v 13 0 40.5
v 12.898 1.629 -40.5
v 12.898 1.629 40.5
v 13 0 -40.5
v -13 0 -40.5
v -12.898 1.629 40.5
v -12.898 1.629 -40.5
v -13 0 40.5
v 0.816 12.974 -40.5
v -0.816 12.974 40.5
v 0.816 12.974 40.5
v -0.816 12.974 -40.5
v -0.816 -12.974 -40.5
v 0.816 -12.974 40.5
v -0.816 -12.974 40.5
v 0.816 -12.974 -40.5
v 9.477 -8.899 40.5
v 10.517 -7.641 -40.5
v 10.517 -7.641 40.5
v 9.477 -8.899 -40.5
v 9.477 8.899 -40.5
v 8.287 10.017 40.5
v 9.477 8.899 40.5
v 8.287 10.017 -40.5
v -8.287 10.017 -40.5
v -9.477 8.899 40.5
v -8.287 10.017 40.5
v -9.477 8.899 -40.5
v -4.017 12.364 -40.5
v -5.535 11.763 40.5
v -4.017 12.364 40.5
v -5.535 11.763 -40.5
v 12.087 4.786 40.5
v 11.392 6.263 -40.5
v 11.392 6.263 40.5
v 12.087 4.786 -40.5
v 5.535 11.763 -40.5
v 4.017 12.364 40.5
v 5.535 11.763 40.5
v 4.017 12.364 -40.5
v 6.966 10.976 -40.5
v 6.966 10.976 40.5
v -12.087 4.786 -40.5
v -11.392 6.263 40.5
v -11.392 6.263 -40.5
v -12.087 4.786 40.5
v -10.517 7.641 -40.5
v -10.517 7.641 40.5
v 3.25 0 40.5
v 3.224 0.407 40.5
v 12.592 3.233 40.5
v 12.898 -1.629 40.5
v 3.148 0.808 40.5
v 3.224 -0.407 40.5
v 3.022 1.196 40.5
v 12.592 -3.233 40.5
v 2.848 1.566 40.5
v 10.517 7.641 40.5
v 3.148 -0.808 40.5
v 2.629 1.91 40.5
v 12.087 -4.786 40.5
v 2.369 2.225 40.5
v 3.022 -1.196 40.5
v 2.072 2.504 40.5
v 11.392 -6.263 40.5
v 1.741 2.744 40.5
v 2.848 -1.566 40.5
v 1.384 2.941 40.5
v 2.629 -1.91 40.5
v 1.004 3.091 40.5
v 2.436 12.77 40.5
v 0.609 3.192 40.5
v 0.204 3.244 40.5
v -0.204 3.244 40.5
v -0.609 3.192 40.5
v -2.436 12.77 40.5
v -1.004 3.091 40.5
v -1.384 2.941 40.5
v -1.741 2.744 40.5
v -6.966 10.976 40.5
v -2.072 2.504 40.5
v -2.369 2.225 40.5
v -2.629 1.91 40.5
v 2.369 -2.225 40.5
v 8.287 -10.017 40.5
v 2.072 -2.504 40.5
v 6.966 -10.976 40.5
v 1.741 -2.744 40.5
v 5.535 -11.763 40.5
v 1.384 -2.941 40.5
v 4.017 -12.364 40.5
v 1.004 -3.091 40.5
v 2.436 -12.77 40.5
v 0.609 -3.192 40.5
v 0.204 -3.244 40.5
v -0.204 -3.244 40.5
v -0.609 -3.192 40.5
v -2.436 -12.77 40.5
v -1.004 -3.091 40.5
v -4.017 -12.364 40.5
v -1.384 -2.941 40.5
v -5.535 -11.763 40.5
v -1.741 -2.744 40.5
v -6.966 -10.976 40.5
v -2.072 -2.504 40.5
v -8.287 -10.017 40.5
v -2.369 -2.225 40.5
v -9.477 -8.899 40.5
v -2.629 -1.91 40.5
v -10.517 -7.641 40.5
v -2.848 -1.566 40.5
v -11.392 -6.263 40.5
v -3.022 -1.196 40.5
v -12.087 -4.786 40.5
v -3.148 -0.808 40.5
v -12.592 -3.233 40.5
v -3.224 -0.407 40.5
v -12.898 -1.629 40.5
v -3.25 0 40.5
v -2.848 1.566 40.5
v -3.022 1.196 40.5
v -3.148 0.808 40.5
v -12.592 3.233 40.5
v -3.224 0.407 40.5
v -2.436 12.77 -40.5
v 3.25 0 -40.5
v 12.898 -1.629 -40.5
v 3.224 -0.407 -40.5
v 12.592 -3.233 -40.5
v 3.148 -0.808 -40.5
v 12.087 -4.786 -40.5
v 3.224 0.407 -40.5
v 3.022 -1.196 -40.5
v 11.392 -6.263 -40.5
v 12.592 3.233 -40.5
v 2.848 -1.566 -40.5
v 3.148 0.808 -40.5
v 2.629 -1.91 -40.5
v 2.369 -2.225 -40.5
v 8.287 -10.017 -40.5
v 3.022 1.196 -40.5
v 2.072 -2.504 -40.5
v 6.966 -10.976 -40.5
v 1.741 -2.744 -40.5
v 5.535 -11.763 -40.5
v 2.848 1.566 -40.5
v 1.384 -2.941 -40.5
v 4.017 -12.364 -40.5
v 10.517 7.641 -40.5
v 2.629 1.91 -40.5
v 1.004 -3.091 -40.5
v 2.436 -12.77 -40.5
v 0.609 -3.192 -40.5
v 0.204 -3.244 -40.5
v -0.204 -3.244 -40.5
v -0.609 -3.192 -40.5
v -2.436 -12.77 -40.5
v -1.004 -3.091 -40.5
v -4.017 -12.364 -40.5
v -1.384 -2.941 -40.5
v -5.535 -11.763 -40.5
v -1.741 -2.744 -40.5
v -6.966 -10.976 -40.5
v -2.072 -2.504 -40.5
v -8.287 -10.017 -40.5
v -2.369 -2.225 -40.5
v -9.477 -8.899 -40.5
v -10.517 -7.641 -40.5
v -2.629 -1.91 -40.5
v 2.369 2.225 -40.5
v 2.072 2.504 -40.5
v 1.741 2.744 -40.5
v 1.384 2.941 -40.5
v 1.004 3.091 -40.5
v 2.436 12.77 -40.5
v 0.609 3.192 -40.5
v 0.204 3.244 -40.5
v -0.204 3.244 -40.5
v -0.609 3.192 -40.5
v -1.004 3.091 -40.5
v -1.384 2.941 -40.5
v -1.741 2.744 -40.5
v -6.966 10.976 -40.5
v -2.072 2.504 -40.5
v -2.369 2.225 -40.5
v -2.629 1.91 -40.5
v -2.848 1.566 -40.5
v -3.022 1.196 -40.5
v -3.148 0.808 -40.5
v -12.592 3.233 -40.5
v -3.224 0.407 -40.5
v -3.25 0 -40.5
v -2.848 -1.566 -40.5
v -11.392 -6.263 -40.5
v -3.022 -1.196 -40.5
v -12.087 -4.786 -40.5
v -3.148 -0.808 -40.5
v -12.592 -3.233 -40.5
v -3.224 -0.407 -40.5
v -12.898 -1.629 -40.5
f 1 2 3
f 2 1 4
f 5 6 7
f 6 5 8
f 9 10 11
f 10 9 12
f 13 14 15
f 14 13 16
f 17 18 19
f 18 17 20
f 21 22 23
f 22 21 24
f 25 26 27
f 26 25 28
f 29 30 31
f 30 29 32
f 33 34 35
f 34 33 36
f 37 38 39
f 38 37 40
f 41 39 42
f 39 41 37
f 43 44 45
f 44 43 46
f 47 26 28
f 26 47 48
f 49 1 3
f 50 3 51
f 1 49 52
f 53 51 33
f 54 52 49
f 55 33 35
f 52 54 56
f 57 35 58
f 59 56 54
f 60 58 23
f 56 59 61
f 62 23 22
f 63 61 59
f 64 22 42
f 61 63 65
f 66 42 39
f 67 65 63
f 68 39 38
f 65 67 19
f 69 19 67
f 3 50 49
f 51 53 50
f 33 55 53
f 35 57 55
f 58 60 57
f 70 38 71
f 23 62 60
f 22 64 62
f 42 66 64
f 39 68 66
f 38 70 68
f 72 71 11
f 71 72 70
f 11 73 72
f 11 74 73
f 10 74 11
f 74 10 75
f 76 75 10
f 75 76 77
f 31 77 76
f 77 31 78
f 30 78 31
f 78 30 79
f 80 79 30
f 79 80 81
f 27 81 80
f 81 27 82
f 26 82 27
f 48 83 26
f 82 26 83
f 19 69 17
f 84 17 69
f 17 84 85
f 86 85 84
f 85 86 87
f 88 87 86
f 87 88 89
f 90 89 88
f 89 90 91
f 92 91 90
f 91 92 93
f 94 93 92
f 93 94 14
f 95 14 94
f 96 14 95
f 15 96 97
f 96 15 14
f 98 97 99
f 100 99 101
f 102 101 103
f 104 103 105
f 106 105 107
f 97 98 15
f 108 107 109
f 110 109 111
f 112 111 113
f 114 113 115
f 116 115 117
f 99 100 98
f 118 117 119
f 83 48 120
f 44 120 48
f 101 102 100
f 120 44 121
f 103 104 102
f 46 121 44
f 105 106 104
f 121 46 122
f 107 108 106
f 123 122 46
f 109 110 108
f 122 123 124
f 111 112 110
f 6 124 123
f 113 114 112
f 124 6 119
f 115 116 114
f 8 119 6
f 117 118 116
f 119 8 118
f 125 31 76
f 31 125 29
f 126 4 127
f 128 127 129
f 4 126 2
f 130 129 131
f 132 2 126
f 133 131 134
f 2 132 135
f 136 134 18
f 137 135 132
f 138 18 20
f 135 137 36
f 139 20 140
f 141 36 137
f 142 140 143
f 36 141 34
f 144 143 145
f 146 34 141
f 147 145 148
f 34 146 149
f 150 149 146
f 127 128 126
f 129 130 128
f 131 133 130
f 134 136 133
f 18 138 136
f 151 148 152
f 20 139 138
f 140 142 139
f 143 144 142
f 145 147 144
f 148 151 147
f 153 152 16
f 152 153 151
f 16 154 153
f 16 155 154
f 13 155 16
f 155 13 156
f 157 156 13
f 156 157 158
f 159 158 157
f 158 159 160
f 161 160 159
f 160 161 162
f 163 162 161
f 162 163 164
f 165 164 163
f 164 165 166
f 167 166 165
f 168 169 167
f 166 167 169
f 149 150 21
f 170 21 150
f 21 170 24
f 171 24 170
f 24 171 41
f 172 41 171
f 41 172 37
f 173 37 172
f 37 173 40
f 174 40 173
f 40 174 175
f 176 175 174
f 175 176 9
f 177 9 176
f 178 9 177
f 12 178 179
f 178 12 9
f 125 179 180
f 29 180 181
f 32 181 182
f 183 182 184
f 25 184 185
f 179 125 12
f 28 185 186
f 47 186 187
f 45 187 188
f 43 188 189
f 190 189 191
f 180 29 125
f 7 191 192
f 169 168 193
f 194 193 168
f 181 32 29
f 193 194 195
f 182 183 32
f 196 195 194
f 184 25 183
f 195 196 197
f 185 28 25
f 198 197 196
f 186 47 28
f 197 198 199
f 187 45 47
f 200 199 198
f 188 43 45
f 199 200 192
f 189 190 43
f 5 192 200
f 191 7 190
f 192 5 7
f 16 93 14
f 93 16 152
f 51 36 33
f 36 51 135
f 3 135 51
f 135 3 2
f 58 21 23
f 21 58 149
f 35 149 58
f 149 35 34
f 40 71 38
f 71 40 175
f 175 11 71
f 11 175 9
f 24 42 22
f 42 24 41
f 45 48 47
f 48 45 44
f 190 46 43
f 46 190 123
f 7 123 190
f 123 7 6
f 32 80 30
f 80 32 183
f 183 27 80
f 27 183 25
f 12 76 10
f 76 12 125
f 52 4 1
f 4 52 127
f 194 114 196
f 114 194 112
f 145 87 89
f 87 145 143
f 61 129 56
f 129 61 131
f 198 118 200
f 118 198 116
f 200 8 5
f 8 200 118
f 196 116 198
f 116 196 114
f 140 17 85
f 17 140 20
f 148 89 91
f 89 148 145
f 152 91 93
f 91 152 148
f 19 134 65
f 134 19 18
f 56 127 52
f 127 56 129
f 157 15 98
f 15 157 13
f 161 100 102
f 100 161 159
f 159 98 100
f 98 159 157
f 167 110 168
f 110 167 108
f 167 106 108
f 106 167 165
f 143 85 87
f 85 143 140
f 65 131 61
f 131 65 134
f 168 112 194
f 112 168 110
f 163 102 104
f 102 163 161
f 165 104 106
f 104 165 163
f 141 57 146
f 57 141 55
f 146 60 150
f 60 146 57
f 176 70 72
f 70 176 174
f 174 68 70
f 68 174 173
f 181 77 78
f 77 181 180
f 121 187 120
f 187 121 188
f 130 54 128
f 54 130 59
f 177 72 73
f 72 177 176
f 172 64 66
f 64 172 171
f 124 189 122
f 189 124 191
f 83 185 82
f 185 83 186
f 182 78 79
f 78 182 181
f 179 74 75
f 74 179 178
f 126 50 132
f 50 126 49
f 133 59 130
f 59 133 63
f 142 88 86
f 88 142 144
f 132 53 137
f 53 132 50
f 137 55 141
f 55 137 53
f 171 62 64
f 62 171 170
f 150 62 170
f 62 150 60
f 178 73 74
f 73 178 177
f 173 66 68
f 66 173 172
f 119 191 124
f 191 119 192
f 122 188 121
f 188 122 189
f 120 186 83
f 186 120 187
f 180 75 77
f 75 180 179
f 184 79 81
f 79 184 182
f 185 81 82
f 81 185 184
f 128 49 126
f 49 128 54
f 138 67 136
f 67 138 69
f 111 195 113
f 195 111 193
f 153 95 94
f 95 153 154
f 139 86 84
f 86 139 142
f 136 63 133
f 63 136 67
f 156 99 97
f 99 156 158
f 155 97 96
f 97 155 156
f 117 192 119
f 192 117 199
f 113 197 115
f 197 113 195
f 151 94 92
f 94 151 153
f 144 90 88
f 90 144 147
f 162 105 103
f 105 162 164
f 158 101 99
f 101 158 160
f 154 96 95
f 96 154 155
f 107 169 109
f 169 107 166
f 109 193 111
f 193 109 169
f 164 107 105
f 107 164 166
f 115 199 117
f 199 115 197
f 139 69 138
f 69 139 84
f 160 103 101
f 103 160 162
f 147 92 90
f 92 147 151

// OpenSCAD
$fn = 50;


difference() {
	union() {
		translate(v = [0, 0, -40.5000000000]) {
			cylinder(h = 81, r = 13.0000000000);
		}
	}
	union() {
		translate(v = [0, 0, -100.0000000000]) {
			cylinder(h = 200, r = 3.2500000000);
		}
	}
}
